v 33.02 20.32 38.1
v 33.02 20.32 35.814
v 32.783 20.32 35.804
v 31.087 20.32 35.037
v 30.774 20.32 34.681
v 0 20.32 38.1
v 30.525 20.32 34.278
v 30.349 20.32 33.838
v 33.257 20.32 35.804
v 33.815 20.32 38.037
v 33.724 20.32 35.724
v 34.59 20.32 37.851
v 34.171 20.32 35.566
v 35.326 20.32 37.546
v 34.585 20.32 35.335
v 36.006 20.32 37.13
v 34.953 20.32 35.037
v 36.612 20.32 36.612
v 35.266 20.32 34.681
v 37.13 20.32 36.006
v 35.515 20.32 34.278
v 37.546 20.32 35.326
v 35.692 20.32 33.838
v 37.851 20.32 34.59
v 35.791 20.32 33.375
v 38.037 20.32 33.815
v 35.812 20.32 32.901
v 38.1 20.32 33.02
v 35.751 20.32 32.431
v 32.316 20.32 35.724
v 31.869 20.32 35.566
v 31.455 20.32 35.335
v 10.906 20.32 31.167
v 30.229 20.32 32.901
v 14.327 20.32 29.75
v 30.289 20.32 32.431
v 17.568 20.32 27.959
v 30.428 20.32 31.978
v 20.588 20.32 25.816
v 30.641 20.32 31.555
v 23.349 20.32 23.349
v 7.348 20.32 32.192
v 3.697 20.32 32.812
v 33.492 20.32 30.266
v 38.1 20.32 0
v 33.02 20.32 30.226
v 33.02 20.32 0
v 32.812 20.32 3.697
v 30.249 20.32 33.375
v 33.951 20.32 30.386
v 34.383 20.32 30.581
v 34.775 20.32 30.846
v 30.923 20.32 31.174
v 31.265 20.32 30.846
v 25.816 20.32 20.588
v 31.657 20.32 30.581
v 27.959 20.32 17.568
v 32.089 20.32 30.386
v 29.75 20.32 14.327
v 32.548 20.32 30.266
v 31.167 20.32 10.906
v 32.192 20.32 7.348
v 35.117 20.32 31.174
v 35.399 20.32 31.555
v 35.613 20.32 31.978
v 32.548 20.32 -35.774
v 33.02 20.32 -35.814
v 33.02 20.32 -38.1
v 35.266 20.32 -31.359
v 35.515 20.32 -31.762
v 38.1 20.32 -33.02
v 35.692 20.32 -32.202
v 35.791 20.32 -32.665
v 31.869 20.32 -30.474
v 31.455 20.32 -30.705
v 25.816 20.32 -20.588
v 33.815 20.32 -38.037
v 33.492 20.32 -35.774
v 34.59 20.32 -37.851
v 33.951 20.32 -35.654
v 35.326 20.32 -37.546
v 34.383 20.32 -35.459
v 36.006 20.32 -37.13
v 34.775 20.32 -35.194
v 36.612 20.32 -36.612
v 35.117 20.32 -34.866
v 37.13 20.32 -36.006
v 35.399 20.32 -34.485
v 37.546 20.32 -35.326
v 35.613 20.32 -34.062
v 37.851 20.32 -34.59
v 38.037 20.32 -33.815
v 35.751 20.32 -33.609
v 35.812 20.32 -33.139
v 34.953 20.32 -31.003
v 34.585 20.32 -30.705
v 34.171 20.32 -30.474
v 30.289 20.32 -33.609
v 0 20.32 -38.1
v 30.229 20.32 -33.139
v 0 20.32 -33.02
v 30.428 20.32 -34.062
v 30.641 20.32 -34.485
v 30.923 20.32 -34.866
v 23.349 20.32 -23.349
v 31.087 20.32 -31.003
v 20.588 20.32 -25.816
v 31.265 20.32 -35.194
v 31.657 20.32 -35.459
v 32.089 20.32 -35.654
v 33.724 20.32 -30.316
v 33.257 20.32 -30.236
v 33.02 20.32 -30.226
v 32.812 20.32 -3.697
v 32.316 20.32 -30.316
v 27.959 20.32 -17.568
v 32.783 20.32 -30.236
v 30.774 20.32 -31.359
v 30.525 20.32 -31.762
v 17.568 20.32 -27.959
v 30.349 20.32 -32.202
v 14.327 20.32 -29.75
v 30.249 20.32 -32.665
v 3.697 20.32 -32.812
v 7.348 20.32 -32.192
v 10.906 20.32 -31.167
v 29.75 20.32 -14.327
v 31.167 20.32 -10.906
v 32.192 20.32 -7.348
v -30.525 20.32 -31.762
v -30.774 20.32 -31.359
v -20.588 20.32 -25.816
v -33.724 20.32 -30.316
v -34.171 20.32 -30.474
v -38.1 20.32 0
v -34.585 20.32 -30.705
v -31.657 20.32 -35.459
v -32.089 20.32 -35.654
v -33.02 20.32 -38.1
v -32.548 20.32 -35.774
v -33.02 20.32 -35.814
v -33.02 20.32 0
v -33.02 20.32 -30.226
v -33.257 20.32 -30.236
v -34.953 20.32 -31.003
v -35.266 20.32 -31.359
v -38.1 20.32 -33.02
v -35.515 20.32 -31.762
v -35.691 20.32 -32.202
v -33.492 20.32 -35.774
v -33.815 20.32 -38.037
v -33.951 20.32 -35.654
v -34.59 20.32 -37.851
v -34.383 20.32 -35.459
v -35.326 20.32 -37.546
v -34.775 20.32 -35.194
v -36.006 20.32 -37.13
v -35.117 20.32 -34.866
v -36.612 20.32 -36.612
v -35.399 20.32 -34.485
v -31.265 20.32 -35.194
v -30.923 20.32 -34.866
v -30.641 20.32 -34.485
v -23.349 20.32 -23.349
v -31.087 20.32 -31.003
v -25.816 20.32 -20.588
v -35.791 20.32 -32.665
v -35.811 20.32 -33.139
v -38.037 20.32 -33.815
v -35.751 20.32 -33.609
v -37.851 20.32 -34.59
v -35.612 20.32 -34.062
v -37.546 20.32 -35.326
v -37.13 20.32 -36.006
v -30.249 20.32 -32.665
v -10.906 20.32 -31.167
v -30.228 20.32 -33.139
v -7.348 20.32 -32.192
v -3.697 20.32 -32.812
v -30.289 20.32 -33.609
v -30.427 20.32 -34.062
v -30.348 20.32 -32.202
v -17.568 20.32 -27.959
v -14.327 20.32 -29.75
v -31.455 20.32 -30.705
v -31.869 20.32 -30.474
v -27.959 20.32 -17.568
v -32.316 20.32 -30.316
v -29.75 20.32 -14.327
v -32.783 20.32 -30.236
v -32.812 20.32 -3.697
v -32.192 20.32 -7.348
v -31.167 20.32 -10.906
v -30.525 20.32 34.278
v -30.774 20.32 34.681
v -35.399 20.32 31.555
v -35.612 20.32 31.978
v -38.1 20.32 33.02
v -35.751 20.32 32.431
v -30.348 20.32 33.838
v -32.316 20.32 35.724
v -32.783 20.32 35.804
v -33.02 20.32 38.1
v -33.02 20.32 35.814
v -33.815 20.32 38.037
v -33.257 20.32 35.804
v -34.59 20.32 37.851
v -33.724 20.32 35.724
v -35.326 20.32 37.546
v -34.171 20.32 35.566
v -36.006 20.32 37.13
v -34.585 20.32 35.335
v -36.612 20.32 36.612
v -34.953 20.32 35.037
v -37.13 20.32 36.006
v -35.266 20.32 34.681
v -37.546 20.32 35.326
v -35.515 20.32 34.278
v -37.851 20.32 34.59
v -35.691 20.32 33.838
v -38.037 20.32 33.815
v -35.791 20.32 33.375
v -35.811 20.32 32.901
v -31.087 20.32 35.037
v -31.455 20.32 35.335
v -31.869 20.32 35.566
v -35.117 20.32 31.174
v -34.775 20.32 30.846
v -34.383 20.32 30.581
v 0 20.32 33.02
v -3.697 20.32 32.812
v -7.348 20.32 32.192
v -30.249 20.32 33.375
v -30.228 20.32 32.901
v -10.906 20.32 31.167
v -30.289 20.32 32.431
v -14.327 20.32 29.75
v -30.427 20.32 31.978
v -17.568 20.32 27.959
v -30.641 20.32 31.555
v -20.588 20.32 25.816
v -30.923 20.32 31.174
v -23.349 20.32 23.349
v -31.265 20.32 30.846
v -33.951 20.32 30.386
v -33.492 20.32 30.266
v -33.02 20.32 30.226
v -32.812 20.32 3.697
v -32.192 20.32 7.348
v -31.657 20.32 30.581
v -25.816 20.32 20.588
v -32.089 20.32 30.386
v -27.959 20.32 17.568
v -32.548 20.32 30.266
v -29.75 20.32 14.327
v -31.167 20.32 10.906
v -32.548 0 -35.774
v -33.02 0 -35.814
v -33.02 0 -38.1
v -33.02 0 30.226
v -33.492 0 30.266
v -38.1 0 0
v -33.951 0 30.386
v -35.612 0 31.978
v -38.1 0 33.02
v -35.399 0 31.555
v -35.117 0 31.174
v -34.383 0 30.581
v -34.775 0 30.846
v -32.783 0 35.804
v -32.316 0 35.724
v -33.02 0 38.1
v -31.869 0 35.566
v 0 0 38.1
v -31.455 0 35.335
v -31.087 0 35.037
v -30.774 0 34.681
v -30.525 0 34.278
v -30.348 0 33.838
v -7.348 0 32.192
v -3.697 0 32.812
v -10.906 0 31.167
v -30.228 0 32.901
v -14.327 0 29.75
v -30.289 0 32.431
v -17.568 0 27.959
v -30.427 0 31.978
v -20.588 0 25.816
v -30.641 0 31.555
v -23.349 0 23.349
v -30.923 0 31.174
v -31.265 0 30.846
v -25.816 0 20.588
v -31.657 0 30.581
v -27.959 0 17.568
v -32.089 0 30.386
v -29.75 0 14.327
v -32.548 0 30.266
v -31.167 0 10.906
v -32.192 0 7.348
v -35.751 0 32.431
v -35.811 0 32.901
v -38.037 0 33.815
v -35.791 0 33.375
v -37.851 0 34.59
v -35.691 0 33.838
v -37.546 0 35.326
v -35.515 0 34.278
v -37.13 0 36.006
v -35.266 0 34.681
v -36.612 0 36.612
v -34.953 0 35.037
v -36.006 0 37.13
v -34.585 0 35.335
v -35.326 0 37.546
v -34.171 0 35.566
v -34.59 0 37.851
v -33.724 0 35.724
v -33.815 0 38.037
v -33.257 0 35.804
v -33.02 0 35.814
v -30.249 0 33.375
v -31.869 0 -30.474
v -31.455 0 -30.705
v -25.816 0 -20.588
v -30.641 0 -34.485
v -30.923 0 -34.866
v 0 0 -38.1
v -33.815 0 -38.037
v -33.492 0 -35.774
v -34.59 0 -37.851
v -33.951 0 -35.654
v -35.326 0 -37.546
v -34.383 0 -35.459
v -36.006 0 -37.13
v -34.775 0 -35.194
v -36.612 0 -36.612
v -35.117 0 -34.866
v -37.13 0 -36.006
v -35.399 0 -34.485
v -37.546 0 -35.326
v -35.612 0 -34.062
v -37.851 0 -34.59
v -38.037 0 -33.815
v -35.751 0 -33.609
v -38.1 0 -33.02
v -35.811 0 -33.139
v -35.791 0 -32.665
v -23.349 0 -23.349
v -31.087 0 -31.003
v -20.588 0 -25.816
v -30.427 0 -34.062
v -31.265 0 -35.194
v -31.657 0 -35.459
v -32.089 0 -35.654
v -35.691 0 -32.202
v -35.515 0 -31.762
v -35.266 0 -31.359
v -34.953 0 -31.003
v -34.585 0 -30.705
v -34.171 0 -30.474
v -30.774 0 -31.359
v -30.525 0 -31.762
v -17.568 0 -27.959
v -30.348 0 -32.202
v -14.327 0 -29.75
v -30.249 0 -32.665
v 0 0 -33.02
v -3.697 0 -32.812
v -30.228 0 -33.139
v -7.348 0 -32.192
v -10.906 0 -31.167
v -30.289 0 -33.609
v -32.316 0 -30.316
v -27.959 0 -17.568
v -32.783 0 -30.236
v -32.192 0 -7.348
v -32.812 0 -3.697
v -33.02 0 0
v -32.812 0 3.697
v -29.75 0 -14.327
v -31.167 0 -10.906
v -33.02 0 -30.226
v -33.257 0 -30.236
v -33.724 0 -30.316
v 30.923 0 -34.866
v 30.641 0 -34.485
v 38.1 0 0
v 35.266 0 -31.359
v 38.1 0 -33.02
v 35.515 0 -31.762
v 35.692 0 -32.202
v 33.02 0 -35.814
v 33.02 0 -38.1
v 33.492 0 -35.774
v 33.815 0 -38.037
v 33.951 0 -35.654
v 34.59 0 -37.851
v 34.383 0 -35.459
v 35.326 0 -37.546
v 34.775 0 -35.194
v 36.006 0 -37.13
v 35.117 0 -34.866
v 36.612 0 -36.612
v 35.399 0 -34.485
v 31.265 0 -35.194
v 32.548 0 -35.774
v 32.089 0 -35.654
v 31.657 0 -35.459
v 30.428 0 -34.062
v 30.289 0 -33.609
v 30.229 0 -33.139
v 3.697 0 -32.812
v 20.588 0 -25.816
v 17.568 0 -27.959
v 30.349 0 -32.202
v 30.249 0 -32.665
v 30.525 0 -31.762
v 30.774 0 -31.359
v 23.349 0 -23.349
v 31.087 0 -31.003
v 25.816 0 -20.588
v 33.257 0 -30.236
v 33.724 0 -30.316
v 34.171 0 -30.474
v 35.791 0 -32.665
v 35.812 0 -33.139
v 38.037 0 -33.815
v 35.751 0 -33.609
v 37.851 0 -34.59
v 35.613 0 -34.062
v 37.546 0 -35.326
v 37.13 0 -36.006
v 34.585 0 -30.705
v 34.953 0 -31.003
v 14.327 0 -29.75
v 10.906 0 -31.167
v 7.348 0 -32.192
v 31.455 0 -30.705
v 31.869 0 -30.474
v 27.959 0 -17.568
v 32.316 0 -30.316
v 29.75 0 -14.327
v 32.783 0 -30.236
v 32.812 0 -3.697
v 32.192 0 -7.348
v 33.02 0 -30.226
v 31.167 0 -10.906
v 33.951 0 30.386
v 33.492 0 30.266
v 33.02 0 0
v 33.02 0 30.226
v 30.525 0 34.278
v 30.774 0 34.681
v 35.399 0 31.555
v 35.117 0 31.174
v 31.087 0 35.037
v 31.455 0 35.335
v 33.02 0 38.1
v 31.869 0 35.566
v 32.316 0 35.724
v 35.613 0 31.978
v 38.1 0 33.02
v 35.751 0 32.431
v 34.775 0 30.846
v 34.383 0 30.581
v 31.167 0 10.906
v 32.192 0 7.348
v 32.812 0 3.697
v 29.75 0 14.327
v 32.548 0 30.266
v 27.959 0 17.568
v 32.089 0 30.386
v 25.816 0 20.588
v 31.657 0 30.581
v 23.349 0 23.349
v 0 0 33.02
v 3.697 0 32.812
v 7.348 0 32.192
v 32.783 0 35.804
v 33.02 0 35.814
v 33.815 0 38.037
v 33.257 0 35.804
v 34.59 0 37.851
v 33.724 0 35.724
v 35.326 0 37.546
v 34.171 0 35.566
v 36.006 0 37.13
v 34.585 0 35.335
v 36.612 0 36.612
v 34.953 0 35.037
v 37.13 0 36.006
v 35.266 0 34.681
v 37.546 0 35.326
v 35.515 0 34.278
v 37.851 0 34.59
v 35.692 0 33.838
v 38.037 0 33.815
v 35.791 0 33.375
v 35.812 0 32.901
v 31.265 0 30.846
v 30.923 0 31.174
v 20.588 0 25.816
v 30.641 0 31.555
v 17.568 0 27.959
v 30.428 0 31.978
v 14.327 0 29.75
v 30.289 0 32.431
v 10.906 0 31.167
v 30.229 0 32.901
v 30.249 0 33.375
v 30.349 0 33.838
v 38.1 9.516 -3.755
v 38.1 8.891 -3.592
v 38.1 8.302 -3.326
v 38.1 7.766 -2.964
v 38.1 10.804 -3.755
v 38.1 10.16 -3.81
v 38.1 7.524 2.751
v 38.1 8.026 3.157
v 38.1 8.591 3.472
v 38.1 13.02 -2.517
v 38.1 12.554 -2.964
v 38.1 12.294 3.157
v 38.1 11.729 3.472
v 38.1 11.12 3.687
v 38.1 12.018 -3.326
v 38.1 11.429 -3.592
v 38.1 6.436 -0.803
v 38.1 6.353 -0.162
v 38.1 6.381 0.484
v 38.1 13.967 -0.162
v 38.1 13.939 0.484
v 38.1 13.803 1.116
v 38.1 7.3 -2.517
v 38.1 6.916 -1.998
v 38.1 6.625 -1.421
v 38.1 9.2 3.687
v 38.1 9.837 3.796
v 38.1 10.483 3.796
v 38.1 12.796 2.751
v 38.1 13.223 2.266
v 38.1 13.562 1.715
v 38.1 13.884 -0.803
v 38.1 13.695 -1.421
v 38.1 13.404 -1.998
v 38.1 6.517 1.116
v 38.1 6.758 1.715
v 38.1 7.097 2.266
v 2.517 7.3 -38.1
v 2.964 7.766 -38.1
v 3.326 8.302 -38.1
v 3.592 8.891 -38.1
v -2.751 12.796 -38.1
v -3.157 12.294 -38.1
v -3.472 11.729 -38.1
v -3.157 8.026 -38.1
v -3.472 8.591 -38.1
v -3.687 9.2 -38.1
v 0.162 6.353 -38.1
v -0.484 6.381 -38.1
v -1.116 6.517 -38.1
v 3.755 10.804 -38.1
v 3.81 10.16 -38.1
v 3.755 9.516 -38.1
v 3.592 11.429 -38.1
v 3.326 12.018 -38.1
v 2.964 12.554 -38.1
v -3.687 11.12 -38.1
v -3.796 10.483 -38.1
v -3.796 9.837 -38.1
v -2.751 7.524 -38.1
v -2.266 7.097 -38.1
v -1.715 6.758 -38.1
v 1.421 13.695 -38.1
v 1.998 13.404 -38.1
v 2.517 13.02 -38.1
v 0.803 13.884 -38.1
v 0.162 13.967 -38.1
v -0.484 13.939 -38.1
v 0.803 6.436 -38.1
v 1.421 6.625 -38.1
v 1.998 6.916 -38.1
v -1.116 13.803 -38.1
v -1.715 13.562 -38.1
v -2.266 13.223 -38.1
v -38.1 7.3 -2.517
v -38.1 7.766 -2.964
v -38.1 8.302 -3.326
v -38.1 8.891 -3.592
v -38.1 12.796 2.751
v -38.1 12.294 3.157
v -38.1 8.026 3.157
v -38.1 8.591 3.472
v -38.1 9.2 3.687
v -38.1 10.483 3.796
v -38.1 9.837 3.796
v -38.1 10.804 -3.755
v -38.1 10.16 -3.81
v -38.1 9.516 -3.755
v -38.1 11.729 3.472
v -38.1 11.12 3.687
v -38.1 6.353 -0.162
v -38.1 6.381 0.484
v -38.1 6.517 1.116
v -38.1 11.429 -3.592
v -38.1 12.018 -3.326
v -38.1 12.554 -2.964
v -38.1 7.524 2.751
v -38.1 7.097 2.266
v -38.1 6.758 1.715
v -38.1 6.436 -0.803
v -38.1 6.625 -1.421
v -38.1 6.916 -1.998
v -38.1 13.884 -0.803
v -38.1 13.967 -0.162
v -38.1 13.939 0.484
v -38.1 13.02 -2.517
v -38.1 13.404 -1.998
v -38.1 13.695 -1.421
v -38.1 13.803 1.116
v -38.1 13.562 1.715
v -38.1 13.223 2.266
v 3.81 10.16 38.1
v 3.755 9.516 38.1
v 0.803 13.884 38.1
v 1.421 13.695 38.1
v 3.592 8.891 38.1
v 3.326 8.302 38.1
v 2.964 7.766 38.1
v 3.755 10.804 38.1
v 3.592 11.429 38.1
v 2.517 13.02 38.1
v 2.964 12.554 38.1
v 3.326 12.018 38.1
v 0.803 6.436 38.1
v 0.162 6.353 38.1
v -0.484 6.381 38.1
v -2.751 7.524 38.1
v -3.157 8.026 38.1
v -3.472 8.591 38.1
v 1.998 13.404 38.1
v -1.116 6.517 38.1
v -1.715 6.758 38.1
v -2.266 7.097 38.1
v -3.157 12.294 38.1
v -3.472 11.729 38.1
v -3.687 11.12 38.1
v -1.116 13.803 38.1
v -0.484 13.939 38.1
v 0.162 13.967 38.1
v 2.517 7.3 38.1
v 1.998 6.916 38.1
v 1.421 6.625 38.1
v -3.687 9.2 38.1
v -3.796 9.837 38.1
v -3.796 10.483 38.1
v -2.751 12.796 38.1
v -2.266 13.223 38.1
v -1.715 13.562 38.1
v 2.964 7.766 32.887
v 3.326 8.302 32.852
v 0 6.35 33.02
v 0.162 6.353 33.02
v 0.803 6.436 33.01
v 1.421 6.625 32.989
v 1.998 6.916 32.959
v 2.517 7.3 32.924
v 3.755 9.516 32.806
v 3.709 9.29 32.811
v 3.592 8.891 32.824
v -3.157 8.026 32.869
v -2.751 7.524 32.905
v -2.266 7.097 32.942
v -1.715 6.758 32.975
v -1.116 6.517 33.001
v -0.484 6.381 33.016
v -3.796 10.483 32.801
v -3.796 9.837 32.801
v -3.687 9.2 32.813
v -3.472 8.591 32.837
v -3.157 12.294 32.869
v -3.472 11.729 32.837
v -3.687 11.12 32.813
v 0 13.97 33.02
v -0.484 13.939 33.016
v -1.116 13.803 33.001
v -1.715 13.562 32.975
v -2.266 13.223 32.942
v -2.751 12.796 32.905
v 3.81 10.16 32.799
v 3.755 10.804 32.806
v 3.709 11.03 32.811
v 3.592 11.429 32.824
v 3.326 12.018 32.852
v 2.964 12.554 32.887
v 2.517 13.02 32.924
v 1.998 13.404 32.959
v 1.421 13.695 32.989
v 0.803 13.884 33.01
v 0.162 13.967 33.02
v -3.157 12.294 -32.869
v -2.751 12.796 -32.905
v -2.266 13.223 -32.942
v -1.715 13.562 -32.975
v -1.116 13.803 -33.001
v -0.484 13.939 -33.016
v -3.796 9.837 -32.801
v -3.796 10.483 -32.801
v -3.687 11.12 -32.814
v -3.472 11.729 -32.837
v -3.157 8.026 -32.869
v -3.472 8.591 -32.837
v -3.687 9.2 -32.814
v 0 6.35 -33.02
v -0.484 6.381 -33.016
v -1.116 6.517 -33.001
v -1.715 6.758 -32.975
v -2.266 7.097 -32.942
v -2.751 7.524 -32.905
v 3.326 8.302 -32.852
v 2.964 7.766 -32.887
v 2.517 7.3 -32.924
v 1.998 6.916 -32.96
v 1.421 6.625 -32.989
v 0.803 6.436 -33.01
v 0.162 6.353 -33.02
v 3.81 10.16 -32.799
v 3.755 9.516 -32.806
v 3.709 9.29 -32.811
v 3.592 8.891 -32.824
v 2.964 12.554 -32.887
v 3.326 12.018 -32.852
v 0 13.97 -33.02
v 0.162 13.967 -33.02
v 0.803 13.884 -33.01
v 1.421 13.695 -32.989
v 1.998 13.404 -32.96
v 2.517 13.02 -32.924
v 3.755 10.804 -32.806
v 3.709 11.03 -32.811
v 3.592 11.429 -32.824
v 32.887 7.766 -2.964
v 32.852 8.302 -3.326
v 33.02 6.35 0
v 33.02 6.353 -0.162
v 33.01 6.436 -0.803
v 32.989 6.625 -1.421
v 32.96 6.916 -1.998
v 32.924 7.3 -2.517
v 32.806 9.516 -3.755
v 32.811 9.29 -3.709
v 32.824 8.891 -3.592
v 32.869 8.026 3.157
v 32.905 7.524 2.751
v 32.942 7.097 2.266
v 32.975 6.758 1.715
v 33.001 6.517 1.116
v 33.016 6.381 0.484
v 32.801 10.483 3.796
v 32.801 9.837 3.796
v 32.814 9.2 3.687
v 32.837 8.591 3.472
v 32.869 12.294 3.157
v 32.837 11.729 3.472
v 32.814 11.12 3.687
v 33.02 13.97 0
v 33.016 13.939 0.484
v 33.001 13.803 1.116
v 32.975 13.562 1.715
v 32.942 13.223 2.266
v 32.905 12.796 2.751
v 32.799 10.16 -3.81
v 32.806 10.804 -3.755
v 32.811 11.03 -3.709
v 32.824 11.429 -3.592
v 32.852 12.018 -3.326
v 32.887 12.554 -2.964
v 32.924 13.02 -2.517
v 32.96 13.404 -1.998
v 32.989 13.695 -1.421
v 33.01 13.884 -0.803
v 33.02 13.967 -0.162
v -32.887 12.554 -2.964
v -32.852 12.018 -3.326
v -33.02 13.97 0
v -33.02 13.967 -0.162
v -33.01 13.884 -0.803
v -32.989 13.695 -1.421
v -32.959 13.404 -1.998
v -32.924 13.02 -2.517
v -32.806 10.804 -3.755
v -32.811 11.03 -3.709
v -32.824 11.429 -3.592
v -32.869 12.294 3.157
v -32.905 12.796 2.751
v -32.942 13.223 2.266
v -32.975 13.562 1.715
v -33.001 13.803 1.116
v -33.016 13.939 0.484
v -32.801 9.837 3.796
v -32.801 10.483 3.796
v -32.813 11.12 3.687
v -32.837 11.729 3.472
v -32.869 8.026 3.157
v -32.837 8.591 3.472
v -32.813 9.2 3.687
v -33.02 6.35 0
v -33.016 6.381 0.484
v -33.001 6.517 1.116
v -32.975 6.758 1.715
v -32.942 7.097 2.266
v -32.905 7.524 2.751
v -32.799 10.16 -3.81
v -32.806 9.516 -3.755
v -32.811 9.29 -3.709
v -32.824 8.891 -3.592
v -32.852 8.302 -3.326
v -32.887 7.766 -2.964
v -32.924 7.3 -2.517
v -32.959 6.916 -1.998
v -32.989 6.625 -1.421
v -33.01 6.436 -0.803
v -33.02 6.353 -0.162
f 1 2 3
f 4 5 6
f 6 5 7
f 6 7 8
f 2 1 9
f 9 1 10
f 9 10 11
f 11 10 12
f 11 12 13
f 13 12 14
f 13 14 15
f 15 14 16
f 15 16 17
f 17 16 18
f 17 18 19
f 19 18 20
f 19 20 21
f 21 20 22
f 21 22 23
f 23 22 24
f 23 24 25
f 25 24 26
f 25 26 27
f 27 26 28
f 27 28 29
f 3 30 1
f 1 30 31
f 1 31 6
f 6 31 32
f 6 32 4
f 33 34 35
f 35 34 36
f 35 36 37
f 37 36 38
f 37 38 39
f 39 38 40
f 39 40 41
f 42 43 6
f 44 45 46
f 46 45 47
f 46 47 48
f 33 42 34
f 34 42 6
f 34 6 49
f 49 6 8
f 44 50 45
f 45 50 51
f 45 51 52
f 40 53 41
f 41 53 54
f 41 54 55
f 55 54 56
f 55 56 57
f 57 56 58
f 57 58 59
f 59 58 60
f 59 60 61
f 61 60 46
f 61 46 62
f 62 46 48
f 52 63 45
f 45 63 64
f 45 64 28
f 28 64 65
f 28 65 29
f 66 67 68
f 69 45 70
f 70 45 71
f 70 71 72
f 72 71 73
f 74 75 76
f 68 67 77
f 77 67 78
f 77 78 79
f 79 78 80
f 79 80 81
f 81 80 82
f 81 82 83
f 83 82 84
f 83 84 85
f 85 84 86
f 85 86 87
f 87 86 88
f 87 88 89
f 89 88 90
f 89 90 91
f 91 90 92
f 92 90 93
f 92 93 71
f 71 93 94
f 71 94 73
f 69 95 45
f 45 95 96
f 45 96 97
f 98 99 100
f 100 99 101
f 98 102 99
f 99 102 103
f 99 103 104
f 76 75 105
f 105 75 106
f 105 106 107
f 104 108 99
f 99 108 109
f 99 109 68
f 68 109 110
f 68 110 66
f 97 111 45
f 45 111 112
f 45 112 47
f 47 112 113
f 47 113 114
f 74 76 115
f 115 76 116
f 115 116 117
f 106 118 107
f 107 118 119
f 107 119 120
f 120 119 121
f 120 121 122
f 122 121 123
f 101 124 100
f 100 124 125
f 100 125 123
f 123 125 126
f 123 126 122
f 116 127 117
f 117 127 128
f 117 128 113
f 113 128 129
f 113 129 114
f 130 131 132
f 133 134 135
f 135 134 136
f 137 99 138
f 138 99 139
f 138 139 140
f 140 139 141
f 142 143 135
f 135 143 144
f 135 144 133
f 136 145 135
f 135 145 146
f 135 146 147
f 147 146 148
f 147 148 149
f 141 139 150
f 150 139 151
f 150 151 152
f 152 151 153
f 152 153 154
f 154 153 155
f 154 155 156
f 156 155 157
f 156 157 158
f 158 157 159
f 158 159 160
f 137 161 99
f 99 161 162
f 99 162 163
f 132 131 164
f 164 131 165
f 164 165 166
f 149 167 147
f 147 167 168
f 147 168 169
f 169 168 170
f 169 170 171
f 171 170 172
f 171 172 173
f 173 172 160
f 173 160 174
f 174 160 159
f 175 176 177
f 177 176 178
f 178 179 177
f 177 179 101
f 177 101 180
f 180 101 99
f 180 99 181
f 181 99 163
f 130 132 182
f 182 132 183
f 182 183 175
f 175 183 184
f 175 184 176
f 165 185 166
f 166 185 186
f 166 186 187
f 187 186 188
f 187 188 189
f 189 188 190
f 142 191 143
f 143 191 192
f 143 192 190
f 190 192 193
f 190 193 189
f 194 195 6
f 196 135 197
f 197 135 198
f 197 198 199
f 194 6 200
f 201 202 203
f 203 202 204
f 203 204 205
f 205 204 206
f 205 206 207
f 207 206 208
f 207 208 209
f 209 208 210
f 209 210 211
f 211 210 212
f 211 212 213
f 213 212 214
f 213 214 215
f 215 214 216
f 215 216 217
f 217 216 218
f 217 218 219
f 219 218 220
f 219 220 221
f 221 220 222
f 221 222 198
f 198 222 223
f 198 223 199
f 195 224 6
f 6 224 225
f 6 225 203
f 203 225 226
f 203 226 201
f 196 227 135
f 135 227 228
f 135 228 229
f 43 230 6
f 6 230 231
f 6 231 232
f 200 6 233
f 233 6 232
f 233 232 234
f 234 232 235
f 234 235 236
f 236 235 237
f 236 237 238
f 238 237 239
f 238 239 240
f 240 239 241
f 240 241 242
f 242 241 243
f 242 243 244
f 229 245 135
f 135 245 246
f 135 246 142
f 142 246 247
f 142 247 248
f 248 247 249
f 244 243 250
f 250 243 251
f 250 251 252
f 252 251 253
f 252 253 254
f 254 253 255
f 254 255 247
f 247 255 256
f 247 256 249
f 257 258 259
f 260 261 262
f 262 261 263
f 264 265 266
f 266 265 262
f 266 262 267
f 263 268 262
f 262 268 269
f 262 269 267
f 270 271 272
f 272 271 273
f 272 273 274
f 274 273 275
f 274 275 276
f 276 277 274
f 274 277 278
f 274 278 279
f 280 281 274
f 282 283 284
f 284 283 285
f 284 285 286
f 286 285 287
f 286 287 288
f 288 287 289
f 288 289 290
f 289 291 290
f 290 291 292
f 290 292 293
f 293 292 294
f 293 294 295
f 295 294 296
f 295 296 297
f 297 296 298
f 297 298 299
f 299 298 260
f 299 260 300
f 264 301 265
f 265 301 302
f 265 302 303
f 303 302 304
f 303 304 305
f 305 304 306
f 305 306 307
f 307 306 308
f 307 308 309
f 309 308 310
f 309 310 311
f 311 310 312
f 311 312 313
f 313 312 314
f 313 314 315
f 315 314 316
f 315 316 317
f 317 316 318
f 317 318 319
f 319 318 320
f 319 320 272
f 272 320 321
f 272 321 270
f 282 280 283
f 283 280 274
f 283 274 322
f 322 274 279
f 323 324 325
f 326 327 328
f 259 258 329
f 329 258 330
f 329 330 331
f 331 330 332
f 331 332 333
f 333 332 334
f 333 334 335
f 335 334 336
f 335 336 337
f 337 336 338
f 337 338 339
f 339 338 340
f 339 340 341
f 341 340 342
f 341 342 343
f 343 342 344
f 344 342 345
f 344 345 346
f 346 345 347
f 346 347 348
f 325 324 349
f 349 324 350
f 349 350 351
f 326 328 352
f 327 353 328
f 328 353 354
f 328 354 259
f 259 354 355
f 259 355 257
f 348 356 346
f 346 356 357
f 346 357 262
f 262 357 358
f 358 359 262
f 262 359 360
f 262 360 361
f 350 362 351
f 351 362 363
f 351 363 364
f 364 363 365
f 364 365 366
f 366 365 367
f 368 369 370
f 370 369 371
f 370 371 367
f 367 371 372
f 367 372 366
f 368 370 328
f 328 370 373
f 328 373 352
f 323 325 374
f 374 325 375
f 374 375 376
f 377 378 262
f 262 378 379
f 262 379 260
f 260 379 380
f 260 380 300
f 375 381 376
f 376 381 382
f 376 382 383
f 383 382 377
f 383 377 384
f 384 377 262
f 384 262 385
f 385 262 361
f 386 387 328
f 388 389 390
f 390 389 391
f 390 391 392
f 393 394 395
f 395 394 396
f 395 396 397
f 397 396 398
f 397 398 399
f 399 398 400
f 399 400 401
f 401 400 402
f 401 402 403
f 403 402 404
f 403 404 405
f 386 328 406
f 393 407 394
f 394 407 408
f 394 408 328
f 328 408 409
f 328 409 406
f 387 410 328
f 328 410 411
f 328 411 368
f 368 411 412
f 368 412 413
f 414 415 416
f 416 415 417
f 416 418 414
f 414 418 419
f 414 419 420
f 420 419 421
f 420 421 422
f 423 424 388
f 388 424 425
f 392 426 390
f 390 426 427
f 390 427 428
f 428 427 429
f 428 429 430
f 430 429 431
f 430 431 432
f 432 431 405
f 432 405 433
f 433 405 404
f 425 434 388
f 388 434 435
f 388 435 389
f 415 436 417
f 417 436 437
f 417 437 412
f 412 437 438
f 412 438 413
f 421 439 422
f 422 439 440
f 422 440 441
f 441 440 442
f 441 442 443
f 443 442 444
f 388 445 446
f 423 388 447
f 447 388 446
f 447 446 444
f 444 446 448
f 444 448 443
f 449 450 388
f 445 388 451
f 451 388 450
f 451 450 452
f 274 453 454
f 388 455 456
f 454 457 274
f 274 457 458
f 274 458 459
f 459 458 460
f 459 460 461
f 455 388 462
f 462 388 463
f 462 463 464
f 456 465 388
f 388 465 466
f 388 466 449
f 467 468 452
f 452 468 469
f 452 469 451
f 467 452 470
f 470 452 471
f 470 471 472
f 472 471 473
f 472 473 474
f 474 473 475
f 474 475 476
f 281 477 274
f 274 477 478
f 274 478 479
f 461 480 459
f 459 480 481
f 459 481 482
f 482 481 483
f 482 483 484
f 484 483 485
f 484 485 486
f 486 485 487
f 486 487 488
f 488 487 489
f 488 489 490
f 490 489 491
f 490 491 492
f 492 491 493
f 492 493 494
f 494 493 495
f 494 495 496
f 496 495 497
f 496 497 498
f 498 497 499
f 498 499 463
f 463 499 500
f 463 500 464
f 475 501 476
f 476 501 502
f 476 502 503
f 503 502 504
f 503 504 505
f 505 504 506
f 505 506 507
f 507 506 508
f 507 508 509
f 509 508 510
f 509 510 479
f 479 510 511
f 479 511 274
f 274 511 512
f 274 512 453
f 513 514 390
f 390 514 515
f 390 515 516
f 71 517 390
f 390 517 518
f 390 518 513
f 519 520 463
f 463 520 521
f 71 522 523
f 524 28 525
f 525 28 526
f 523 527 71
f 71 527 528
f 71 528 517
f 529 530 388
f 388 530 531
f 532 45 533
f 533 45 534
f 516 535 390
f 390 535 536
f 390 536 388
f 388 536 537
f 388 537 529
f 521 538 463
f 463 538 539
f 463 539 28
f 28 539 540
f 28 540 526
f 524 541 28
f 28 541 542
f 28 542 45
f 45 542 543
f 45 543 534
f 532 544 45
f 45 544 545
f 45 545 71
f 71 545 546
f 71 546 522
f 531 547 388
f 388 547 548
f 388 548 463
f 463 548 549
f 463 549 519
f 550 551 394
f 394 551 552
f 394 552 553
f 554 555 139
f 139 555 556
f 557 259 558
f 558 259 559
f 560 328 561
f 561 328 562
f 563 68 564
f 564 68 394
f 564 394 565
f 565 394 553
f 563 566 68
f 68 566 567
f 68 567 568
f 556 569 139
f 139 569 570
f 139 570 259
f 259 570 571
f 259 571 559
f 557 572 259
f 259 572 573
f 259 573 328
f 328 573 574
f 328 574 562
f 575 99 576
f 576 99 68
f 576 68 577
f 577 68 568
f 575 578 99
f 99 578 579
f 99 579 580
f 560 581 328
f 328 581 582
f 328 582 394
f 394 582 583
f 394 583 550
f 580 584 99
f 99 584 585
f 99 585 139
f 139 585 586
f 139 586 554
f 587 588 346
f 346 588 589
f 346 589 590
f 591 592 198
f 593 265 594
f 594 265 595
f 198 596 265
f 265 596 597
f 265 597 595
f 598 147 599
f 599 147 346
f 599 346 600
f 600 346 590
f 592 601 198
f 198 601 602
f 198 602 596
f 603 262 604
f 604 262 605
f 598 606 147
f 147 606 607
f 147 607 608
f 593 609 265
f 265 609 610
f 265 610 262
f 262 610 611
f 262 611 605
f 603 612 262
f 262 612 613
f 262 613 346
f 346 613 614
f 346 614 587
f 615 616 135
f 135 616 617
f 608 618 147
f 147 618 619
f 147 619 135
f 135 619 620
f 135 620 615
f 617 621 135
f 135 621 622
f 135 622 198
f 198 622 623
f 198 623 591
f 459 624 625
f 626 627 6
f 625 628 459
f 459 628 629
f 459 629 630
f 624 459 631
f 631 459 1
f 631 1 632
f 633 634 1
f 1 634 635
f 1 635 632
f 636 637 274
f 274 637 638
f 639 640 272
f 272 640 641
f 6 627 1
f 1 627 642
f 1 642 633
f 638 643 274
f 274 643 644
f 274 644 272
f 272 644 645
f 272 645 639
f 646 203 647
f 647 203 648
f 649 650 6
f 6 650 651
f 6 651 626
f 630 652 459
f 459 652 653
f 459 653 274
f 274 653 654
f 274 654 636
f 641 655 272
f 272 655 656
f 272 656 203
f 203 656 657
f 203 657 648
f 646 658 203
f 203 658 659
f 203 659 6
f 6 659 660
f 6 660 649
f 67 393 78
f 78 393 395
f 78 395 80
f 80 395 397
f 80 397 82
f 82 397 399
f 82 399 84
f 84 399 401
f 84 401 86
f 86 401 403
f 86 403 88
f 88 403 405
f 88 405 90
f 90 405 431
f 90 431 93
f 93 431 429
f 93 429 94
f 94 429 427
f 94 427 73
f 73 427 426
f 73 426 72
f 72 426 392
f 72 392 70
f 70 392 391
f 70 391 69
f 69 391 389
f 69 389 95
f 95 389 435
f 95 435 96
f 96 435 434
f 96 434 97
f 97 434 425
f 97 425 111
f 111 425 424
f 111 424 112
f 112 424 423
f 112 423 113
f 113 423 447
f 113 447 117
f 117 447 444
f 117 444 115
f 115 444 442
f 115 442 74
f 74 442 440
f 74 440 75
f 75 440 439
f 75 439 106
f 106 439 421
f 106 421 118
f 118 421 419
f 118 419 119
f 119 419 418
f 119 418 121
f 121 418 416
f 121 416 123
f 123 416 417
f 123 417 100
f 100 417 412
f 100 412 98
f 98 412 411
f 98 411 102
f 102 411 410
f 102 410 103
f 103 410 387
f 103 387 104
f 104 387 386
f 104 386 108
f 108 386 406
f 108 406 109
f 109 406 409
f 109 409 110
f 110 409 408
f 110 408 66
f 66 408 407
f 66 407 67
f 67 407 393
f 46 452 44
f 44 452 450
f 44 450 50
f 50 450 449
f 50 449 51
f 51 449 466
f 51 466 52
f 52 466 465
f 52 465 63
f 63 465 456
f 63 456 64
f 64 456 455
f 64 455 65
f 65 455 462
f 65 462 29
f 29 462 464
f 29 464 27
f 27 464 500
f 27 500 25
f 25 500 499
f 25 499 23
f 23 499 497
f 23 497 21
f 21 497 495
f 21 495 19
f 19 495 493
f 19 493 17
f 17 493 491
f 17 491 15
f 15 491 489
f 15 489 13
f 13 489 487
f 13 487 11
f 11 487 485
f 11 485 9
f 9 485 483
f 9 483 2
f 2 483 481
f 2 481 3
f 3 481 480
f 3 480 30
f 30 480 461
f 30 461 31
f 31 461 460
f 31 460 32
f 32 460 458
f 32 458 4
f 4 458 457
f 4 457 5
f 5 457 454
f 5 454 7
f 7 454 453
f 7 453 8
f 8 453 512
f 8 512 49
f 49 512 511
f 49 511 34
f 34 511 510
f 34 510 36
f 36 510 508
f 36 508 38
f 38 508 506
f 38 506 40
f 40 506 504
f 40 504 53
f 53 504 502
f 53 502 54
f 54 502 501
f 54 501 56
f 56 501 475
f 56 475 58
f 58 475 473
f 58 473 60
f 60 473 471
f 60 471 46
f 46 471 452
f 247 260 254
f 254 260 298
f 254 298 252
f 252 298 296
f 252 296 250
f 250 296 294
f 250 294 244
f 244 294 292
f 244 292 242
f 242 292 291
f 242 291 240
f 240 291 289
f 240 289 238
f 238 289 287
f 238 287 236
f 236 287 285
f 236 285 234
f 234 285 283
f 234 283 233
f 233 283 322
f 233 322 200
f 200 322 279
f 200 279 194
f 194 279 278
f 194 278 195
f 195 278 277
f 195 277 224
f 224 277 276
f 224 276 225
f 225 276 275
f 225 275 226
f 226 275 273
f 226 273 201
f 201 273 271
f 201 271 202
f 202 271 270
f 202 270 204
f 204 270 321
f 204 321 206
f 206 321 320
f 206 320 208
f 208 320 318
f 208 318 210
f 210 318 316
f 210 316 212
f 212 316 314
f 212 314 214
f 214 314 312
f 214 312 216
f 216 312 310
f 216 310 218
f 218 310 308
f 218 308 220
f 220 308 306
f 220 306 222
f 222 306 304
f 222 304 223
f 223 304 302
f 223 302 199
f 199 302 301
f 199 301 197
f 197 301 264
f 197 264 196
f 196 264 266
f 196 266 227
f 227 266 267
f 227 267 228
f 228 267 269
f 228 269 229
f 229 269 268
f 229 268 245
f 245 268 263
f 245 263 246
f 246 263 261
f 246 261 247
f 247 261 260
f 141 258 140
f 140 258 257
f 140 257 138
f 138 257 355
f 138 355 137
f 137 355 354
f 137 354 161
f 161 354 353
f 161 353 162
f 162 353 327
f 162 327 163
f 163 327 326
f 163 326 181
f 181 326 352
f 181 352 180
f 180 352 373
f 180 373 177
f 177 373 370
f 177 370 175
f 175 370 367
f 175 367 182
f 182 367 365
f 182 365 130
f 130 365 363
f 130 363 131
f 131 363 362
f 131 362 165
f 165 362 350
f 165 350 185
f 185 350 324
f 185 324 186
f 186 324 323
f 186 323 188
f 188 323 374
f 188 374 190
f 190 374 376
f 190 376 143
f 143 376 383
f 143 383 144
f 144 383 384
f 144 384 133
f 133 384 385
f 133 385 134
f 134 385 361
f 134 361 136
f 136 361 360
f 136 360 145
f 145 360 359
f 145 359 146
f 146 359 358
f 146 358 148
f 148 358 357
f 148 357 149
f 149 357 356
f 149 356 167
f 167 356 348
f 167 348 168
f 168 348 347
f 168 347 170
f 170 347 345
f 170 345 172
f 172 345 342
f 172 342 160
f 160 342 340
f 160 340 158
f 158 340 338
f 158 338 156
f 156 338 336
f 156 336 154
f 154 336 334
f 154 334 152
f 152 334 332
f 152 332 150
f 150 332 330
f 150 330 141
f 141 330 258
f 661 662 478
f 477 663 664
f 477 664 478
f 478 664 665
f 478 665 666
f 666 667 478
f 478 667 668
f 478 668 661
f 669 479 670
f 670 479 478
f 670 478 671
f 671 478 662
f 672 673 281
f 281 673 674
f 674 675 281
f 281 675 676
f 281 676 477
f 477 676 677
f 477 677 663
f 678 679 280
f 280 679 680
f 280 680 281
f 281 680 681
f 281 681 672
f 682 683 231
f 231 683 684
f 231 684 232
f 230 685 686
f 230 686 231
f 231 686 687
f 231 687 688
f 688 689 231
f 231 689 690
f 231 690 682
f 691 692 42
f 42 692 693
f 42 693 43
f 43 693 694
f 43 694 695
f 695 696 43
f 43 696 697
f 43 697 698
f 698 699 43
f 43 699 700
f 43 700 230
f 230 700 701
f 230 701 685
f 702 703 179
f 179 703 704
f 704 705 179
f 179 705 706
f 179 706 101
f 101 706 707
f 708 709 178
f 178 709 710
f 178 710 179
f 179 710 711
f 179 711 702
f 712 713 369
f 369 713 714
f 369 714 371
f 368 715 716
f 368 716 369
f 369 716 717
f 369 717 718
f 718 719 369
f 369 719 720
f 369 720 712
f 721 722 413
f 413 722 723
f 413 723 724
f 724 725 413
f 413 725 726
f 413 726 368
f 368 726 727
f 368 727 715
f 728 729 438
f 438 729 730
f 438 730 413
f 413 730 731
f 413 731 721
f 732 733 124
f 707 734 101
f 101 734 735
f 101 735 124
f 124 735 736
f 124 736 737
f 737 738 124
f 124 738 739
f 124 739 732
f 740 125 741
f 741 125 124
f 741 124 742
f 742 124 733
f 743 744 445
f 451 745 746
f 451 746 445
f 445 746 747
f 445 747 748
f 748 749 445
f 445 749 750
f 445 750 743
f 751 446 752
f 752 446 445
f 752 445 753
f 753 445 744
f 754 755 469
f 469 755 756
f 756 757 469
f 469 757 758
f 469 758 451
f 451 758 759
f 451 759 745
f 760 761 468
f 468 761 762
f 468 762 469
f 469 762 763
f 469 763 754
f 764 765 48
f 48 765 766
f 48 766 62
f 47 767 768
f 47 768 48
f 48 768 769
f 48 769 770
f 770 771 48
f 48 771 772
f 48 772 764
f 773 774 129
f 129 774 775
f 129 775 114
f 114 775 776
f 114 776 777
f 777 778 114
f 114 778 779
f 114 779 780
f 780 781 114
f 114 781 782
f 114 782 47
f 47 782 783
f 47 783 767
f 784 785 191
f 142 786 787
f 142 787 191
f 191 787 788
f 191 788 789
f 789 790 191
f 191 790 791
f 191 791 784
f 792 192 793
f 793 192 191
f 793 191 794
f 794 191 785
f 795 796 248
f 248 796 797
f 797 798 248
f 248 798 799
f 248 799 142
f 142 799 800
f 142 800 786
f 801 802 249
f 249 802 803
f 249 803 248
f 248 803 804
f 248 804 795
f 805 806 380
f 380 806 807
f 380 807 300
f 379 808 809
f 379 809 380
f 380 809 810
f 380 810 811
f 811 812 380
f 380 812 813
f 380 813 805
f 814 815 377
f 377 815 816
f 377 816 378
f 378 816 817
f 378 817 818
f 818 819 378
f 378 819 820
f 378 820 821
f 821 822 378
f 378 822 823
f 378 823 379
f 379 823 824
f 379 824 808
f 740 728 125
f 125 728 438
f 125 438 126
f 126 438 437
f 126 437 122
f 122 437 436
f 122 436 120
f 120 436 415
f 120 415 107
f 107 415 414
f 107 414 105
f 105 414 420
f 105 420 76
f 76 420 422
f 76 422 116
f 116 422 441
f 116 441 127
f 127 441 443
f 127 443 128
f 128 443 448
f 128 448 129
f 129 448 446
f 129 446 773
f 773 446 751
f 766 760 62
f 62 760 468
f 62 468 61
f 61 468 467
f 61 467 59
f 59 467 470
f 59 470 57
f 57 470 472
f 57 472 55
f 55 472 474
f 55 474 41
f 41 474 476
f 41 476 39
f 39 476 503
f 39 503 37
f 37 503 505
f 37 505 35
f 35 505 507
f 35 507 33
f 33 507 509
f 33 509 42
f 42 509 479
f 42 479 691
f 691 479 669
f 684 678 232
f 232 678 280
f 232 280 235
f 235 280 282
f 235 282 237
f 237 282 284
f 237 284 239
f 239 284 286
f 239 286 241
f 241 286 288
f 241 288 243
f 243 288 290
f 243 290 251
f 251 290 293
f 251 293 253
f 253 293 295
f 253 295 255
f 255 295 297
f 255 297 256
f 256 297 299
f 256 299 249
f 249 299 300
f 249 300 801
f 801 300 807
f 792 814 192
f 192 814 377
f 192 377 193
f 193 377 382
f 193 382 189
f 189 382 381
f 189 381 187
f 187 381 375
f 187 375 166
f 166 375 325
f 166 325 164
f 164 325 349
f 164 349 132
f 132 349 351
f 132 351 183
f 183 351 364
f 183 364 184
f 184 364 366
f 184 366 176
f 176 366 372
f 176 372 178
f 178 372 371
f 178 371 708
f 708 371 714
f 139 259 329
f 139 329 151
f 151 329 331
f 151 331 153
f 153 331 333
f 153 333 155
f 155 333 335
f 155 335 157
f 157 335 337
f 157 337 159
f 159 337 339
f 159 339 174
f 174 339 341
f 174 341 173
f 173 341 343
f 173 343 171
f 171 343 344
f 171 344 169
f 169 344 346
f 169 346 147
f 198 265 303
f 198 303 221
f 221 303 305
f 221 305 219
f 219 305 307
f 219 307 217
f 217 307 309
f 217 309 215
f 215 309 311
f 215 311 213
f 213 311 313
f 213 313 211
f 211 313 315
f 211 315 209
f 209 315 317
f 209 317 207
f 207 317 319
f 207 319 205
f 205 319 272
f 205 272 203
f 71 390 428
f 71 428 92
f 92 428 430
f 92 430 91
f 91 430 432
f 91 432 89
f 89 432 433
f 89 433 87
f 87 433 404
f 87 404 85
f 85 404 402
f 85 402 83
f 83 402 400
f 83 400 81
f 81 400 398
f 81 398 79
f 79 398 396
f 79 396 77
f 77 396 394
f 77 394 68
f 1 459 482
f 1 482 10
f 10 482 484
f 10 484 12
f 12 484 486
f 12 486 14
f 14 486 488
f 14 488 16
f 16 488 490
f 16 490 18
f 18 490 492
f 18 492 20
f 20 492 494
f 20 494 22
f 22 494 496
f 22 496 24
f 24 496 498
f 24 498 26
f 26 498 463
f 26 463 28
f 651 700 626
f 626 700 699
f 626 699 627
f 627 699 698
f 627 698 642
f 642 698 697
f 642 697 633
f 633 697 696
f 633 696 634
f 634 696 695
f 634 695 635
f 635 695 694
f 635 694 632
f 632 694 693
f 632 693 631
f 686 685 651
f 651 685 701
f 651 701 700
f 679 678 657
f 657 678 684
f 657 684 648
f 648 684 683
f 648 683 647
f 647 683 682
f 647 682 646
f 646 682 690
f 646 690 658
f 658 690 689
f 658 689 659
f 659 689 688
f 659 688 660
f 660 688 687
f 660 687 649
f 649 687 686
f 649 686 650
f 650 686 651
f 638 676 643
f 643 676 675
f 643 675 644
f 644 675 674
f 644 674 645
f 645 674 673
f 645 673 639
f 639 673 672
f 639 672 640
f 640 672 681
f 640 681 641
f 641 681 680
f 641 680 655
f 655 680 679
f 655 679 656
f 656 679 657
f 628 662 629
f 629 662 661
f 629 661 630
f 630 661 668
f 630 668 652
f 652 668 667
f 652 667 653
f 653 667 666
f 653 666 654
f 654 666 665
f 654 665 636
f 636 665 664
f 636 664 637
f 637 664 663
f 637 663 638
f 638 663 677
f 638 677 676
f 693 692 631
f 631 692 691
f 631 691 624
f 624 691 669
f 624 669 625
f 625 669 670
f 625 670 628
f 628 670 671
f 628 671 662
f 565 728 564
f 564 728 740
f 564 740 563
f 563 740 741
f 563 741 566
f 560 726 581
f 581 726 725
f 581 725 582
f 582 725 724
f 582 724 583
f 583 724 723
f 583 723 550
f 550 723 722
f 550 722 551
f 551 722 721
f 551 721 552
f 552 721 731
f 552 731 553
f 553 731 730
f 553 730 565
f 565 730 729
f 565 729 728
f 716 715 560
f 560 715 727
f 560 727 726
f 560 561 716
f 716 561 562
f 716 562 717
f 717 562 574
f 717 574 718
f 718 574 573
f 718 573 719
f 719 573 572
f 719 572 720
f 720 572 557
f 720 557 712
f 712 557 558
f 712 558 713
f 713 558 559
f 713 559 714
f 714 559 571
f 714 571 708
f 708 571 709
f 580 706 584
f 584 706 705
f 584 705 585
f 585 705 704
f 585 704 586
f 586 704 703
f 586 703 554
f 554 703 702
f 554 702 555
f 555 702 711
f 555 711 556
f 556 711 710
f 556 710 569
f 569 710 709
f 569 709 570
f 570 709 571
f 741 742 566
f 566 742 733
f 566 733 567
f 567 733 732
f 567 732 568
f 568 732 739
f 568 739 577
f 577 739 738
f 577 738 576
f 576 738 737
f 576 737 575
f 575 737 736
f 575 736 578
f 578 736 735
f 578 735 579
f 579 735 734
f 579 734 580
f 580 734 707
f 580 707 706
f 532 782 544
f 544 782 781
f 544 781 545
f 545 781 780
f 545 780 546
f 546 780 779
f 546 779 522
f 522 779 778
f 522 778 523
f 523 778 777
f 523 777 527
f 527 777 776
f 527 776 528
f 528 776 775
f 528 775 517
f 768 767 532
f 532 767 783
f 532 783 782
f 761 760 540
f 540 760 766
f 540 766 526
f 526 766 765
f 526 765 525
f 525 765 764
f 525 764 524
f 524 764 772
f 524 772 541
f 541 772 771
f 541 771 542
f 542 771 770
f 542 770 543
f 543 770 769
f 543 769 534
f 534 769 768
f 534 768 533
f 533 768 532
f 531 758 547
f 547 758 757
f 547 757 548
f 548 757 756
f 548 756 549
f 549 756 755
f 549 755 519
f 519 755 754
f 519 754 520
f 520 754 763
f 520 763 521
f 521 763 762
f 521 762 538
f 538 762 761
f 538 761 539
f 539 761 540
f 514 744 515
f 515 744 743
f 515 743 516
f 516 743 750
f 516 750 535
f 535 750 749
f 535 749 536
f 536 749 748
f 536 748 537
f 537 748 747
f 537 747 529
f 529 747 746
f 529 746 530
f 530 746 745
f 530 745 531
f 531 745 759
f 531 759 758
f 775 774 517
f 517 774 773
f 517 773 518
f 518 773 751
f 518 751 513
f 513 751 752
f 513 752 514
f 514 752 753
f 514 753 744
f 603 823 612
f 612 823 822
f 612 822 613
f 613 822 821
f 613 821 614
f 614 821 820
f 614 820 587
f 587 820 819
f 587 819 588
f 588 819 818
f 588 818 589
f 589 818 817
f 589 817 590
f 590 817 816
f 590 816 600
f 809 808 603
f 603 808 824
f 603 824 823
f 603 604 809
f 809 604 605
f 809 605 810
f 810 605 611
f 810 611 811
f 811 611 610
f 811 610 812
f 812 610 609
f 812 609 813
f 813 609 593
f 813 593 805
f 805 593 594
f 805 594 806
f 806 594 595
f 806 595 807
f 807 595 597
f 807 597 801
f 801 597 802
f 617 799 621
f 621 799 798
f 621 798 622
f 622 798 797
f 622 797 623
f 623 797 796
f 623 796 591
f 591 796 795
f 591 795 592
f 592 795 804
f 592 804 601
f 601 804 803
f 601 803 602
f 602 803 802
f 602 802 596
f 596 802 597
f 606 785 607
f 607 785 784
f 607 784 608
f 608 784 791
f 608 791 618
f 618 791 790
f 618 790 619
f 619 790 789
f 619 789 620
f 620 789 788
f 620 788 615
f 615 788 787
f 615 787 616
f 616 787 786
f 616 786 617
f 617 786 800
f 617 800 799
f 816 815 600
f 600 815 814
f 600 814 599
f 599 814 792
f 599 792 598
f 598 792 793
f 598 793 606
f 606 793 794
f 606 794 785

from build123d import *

# Parameters (mm, degrees)
SKETCH1_W           = 76.2
SKETCH1_H           = 76.2
SKETCH1_R           = 2.794
SKETCH1_R_2         = 33.02
BOSS_EXTRUDE1_DEPTH = 20.32
FILLET1_R           = 5.08
CUT_EXTRUDE1_DEPTH  = 88.58397342
CUT_EXTRUDE2_DEPTH  = 88.583973487


with BuildPart() as part:
    # Sketch1 → Boss-Extrude1 (new body)
    with BuildSketch(Plane(origin=(0, 0, 0), x_dir=(1, 0, 0), z_dir=(0, 1, 0))):
        Rectangle(SKETCH1_W, SKETCH1_H)
        with Locations(Location((33.02, 33.02, 0), (0, 0, 270))):
            Circle(SKETCH1_R, mode=Mode.SUBTRACT)
        with Locations(Location((33.02, -33.02, 0), (0, 0, 270))):
            Circle(SKETCH1_R, mode=Mode.SUBTRACT)
        with Locations(Location((-33.02, -33.02, 0), (0, 0, 270))):
            Circle(SKETCH1_R, mode=Mode.SUBTRACT)
        with Locations(Location((-33.02, 33.02, 0), (0, 0, 270))):
            Circle(SKETCH1_R, mode=Mode.SUBTRACT)
        with Locations(Location((0, 0, 0), (0, 0, 270))):
            Circle(SKETCH1_R_2, mode=Mode.SUBTRACT)
    extrude(amount=BOSS_EXTRUDE1_DEPTH)

    # Fillet1
    fillet1_edges = [part.edges().sort_by_distance(p)[0] for p in [
        (38.1, 10.16, 38.1),
        (-38.1, 10.16, 38.1),
        (-38.1, 10.16, -38.1),
        (38.1, 10.16, -38.1),
    ]]
    fillet(fillet1_edges, radius=FILLET1_R)

    # Sketch2 → Cut-Extrude1 (cut, through all)
    with BuildSketch(Plane.XY.offset(38.1)):
        with BuildLine():
            ThreePointArc((3.81, 10.16), (2.694076836, 12.854076836), (0, 13.97))
            Line((0, 13.97), (0, 6.35))
            ThreePointArc((0, 6.35), (2.694076836, 7.465923164), (3.81, 10.16))
        make_face()
        with BuildLine():
            Line((0, 6.35), (0, 13.97))
            ThreePointArc((0, 13.97), (-3.81, 10.16), (0, 6.35))
        make_face()
    extrude(amount=-CUT_EXTRUDE1_DEPTH, mode=Mode.SUBTRACT)

    # Sketch3 → Cut-Extrude2 (cut, through all)
    with BuildSketch(Plane(origin=(38.1, 0, 0), x_dir=(0, 0, -1), z_dir=(1, 0, 0))):
        with BuildLine():
            ThreePointArc((0, 13.97), (-3.81, 10.16), (0, 6.35))
            Line((0, 6.35), (0, 13.97))
        make_face()
        with BuildLine():
            Line((0, 13.97), (0, 6.35))
            ThreePointArc((0, 6.35), (2.694076836, 7.465923164), (3.81, 10.16))
            ThreePointArc((3.81, 10.16), (2.694076836, 12.854076836), (0, 13.97))
        make_face()
    extrude(amount=-CUT_EXTRUDE2_DEPTH, mode=Mode.SUBTRACT)


solid = part.part
